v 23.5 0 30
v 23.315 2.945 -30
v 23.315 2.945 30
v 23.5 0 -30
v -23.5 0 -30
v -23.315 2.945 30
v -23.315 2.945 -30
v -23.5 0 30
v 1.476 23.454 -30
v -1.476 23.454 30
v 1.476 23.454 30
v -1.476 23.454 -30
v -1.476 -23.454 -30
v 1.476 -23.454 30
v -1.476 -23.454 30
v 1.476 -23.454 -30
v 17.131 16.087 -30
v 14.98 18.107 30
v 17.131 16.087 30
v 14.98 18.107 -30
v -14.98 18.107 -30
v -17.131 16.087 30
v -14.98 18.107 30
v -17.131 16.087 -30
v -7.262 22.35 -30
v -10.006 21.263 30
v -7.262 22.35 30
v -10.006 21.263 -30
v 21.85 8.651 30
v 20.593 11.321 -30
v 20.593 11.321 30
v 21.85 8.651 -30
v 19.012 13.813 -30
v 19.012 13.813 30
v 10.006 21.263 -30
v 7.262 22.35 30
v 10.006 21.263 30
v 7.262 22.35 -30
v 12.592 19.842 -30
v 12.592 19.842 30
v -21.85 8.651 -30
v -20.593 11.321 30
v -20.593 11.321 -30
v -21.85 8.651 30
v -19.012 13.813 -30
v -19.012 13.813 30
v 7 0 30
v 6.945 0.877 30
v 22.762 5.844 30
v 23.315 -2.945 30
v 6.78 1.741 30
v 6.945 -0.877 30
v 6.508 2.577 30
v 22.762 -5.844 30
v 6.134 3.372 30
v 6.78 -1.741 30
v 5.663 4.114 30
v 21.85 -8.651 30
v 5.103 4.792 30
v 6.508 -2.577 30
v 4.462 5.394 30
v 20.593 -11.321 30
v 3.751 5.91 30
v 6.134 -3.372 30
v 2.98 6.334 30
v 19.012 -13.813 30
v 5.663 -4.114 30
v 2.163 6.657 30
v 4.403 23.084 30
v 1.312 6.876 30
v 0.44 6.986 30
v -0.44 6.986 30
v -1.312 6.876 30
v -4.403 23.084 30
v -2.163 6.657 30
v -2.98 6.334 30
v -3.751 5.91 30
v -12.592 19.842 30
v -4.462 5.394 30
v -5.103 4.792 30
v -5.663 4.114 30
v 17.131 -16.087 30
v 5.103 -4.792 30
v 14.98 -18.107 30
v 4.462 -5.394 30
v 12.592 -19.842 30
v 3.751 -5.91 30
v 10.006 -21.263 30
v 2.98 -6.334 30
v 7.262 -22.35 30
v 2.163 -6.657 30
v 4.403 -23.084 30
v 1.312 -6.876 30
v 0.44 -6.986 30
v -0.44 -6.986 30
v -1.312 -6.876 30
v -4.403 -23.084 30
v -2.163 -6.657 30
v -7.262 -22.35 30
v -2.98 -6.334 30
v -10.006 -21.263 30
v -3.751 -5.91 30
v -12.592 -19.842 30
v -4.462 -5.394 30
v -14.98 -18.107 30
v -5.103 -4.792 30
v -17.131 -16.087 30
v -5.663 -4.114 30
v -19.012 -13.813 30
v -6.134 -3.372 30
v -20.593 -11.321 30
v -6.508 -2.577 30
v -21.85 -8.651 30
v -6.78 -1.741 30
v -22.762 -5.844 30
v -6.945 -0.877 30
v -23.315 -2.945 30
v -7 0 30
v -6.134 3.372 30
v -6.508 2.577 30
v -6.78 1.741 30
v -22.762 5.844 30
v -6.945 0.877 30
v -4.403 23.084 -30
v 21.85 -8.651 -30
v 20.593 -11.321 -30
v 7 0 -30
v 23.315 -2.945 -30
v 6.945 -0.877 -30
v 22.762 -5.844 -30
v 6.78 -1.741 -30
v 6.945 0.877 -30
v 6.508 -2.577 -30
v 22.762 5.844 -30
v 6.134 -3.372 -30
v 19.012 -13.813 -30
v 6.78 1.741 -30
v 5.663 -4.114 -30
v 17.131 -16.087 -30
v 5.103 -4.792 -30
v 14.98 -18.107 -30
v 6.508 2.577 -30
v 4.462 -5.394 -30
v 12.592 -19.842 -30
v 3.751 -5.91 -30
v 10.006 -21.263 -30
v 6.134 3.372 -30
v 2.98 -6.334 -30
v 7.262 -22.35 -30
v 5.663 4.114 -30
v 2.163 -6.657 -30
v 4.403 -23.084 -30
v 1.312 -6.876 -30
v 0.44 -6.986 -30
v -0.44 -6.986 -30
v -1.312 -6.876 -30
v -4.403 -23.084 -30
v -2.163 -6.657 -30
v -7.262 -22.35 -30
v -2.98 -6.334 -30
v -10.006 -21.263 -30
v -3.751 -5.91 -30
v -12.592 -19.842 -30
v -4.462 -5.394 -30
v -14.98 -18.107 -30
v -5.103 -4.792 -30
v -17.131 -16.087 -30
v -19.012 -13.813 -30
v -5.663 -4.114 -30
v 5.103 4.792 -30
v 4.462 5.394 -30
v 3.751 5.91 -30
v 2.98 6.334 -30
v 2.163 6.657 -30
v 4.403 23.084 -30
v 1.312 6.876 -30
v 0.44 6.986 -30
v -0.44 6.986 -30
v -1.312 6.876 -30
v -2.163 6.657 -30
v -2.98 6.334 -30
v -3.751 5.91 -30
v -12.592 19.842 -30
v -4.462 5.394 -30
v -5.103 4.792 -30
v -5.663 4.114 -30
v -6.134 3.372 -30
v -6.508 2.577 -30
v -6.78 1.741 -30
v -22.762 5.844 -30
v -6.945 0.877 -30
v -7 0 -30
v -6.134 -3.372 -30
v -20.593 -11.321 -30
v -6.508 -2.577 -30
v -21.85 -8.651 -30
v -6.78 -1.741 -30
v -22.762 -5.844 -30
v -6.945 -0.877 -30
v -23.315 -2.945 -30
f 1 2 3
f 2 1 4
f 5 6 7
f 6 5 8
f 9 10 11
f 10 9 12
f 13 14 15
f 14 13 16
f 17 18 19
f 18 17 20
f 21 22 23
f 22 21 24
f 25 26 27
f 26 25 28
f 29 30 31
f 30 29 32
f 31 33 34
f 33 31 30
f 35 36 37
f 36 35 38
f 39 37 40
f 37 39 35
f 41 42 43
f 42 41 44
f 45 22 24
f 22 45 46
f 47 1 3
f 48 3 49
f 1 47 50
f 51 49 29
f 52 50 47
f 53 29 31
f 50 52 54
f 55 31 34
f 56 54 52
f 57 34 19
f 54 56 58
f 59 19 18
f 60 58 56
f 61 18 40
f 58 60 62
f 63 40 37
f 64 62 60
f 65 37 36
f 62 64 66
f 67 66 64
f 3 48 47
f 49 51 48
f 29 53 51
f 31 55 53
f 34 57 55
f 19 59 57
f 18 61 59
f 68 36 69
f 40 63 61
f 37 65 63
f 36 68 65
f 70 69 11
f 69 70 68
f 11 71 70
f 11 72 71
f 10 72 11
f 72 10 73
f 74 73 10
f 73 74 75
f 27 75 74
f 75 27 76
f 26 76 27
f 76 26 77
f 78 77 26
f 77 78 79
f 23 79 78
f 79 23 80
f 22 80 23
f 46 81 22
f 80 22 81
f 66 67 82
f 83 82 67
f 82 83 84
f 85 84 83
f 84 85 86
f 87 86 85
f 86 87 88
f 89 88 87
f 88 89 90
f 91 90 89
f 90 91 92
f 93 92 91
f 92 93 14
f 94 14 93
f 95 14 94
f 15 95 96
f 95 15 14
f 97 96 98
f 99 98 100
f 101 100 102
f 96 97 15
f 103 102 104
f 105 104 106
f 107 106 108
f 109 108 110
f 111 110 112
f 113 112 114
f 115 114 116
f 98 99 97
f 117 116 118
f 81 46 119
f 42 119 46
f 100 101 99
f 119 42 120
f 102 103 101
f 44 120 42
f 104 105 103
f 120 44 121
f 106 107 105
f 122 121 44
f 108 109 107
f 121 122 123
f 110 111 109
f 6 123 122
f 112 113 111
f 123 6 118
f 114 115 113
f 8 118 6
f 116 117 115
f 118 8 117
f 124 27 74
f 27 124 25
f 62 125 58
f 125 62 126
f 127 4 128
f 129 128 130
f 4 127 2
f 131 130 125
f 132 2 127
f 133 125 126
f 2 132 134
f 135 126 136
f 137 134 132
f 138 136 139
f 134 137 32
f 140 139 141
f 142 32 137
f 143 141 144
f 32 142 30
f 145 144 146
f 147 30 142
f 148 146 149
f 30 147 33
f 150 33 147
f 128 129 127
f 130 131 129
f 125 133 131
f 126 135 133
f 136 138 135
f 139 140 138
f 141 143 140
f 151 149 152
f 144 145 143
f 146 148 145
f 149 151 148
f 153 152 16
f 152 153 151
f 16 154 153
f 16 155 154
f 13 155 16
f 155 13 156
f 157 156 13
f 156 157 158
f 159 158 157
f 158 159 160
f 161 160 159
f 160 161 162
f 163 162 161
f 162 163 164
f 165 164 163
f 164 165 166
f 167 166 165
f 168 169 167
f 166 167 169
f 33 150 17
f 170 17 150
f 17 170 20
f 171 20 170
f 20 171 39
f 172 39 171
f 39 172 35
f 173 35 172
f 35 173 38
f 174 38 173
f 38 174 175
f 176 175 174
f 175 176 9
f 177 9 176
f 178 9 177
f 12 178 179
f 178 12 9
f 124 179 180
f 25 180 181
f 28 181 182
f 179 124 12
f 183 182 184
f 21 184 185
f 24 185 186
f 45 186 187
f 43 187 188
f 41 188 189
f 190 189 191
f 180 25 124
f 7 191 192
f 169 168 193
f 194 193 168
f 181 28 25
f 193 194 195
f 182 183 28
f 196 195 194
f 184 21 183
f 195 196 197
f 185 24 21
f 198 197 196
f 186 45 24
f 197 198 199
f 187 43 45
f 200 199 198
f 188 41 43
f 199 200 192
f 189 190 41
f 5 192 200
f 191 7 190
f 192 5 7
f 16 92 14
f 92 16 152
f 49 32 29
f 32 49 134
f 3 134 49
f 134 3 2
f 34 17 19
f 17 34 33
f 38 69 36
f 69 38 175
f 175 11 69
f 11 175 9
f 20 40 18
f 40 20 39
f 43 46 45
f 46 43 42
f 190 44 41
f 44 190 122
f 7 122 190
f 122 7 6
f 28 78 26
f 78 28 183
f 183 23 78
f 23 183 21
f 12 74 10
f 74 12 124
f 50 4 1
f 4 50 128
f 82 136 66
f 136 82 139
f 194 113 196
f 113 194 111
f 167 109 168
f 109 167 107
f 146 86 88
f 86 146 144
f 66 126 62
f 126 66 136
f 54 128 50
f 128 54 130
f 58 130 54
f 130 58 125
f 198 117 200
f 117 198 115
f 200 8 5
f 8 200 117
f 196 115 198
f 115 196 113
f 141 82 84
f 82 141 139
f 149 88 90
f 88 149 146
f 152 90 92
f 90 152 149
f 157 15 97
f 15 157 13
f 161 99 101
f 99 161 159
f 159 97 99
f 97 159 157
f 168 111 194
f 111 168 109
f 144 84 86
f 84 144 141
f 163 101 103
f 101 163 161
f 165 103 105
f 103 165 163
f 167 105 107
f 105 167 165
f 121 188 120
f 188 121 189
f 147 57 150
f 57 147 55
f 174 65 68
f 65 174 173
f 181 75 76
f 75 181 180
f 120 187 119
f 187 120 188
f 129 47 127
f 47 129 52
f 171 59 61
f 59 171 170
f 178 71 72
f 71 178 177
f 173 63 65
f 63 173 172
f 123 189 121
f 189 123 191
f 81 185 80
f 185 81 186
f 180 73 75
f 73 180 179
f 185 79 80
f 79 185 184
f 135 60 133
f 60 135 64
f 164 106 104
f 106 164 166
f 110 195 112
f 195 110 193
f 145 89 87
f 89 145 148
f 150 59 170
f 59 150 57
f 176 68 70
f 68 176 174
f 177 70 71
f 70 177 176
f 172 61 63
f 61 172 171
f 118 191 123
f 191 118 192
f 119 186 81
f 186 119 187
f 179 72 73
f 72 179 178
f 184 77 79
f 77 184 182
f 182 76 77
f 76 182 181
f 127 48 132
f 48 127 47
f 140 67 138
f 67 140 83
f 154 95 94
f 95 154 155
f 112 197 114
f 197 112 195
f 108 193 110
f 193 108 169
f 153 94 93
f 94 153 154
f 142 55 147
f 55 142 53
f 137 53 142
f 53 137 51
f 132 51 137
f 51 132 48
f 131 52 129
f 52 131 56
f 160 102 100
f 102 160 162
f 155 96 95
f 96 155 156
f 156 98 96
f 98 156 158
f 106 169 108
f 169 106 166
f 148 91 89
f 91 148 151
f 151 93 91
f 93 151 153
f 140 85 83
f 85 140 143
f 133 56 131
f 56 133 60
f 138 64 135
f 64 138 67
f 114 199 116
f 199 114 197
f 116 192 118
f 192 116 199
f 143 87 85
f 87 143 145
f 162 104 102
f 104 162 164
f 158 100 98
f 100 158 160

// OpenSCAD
$fn = 50;


difference() {
	union() {
		translate(v = [0, 0, -30.0000000000]) {
			cylinder(h = 60, r = 23.5000000000);
		}
	}
	union() {
		translate(v = [0, 0, -100.0000000000]) {
			cylinder(h = 200, r = 7);
		}
	}
}
